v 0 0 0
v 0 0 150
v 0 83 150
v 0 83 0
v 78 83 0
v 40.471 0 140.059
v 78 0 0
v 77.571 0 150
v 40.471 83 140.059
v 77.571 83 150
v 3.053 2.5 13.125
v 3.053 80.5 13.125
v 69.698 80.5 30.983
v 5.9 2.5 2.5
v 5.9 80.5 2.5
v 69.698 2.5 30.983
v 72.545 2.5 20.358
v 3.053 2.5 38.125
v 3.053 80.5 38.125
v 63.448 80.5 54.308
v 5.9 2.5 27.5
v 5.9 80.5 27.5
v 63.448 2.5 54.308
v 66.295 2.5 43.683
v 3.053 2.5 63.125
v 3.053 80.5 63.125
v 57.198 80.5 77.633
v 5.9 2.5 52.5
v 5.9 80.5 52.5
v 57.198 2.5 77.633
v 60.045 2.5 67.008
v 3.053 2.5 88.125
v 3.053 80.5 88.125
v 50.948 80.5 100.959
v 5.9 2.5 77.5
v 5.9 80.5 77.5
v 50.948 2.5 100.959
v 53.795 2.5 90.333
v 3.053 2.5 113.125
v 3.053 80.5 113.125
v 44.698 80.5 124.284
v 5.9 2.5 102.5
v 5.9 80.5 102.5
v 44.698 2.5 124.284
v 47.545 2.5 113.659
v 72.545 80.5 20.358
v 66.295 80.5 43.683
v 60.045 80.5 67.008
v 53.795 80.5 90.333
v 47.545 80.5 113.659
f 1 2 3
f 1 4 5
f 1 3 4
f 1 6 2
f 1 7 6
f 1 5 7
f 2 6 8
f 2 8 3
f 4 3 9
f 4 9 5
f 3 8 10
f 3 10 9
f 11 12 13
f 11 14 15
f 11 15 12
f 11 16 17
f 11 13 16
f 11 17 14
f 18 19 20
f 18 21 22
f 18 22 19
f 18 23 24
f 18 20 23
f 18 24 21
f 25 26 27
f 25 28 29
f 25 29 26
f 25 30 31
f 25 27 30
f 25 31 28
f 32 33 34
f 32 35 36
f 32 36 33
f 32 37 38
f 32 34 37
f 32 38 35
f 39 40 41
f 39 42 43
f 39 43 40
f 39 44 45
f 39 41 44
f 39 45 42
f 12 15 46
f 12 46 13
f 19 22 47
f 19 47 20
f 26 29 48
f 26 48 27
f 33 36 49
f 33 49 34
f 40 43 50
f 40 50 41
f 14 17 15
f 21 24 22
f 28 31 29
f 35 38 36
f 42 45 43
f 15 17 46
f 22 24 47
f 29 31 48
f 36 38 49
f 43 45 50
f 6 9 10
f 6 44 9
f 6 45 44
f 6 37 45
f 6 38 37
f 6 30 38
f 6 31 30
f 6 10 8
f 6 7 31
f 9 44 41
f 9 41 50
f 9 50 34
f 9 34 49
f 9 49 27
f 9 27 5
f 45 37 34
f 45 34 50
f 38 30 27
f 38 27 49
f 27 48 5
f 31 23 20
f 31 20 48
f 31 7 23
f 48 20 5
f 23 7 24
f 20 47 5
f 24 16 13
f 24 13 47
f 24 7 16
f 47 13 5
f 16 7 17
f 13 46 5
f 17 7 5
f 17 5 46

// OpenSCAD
// stand for Iomega REV disks
// 
// 12.10.2025 Sebastian Weigl
 
// set the fregment sizes
$fn = $preview ? 48 : 64;

// vars
border=2.5;

fir_box_width=78;
fir_box_depth=83;
fir_box_height=150;

sec_box_width=75.5;
sec_box_depth=78;
sec_box_height=11;

module card(){
rotate([0,-15,0])
#cube([sec_box_width,sec_box_depth,sec_box_height],false);
}

// object
difference() {
cube([fir_box_width,fir_box_depth,fir_box_height],false);
//
translate([fir_box_width,0,0])
rotate([0,-15,0])
cube([40,fir_box_depth,fir_box_height-5],false);
// first slot
translate([5.9,2.5,2.5])
card();
// second slot
translate([5.9,2.5,27.5])
card();
// third slot
translate([5.9,2.5,52.5])
card();
// forth slot
translate([5.9,2.5,77.5])
card();
// fifth slot
translate([5.9,2.5,102.5])
card();
}
